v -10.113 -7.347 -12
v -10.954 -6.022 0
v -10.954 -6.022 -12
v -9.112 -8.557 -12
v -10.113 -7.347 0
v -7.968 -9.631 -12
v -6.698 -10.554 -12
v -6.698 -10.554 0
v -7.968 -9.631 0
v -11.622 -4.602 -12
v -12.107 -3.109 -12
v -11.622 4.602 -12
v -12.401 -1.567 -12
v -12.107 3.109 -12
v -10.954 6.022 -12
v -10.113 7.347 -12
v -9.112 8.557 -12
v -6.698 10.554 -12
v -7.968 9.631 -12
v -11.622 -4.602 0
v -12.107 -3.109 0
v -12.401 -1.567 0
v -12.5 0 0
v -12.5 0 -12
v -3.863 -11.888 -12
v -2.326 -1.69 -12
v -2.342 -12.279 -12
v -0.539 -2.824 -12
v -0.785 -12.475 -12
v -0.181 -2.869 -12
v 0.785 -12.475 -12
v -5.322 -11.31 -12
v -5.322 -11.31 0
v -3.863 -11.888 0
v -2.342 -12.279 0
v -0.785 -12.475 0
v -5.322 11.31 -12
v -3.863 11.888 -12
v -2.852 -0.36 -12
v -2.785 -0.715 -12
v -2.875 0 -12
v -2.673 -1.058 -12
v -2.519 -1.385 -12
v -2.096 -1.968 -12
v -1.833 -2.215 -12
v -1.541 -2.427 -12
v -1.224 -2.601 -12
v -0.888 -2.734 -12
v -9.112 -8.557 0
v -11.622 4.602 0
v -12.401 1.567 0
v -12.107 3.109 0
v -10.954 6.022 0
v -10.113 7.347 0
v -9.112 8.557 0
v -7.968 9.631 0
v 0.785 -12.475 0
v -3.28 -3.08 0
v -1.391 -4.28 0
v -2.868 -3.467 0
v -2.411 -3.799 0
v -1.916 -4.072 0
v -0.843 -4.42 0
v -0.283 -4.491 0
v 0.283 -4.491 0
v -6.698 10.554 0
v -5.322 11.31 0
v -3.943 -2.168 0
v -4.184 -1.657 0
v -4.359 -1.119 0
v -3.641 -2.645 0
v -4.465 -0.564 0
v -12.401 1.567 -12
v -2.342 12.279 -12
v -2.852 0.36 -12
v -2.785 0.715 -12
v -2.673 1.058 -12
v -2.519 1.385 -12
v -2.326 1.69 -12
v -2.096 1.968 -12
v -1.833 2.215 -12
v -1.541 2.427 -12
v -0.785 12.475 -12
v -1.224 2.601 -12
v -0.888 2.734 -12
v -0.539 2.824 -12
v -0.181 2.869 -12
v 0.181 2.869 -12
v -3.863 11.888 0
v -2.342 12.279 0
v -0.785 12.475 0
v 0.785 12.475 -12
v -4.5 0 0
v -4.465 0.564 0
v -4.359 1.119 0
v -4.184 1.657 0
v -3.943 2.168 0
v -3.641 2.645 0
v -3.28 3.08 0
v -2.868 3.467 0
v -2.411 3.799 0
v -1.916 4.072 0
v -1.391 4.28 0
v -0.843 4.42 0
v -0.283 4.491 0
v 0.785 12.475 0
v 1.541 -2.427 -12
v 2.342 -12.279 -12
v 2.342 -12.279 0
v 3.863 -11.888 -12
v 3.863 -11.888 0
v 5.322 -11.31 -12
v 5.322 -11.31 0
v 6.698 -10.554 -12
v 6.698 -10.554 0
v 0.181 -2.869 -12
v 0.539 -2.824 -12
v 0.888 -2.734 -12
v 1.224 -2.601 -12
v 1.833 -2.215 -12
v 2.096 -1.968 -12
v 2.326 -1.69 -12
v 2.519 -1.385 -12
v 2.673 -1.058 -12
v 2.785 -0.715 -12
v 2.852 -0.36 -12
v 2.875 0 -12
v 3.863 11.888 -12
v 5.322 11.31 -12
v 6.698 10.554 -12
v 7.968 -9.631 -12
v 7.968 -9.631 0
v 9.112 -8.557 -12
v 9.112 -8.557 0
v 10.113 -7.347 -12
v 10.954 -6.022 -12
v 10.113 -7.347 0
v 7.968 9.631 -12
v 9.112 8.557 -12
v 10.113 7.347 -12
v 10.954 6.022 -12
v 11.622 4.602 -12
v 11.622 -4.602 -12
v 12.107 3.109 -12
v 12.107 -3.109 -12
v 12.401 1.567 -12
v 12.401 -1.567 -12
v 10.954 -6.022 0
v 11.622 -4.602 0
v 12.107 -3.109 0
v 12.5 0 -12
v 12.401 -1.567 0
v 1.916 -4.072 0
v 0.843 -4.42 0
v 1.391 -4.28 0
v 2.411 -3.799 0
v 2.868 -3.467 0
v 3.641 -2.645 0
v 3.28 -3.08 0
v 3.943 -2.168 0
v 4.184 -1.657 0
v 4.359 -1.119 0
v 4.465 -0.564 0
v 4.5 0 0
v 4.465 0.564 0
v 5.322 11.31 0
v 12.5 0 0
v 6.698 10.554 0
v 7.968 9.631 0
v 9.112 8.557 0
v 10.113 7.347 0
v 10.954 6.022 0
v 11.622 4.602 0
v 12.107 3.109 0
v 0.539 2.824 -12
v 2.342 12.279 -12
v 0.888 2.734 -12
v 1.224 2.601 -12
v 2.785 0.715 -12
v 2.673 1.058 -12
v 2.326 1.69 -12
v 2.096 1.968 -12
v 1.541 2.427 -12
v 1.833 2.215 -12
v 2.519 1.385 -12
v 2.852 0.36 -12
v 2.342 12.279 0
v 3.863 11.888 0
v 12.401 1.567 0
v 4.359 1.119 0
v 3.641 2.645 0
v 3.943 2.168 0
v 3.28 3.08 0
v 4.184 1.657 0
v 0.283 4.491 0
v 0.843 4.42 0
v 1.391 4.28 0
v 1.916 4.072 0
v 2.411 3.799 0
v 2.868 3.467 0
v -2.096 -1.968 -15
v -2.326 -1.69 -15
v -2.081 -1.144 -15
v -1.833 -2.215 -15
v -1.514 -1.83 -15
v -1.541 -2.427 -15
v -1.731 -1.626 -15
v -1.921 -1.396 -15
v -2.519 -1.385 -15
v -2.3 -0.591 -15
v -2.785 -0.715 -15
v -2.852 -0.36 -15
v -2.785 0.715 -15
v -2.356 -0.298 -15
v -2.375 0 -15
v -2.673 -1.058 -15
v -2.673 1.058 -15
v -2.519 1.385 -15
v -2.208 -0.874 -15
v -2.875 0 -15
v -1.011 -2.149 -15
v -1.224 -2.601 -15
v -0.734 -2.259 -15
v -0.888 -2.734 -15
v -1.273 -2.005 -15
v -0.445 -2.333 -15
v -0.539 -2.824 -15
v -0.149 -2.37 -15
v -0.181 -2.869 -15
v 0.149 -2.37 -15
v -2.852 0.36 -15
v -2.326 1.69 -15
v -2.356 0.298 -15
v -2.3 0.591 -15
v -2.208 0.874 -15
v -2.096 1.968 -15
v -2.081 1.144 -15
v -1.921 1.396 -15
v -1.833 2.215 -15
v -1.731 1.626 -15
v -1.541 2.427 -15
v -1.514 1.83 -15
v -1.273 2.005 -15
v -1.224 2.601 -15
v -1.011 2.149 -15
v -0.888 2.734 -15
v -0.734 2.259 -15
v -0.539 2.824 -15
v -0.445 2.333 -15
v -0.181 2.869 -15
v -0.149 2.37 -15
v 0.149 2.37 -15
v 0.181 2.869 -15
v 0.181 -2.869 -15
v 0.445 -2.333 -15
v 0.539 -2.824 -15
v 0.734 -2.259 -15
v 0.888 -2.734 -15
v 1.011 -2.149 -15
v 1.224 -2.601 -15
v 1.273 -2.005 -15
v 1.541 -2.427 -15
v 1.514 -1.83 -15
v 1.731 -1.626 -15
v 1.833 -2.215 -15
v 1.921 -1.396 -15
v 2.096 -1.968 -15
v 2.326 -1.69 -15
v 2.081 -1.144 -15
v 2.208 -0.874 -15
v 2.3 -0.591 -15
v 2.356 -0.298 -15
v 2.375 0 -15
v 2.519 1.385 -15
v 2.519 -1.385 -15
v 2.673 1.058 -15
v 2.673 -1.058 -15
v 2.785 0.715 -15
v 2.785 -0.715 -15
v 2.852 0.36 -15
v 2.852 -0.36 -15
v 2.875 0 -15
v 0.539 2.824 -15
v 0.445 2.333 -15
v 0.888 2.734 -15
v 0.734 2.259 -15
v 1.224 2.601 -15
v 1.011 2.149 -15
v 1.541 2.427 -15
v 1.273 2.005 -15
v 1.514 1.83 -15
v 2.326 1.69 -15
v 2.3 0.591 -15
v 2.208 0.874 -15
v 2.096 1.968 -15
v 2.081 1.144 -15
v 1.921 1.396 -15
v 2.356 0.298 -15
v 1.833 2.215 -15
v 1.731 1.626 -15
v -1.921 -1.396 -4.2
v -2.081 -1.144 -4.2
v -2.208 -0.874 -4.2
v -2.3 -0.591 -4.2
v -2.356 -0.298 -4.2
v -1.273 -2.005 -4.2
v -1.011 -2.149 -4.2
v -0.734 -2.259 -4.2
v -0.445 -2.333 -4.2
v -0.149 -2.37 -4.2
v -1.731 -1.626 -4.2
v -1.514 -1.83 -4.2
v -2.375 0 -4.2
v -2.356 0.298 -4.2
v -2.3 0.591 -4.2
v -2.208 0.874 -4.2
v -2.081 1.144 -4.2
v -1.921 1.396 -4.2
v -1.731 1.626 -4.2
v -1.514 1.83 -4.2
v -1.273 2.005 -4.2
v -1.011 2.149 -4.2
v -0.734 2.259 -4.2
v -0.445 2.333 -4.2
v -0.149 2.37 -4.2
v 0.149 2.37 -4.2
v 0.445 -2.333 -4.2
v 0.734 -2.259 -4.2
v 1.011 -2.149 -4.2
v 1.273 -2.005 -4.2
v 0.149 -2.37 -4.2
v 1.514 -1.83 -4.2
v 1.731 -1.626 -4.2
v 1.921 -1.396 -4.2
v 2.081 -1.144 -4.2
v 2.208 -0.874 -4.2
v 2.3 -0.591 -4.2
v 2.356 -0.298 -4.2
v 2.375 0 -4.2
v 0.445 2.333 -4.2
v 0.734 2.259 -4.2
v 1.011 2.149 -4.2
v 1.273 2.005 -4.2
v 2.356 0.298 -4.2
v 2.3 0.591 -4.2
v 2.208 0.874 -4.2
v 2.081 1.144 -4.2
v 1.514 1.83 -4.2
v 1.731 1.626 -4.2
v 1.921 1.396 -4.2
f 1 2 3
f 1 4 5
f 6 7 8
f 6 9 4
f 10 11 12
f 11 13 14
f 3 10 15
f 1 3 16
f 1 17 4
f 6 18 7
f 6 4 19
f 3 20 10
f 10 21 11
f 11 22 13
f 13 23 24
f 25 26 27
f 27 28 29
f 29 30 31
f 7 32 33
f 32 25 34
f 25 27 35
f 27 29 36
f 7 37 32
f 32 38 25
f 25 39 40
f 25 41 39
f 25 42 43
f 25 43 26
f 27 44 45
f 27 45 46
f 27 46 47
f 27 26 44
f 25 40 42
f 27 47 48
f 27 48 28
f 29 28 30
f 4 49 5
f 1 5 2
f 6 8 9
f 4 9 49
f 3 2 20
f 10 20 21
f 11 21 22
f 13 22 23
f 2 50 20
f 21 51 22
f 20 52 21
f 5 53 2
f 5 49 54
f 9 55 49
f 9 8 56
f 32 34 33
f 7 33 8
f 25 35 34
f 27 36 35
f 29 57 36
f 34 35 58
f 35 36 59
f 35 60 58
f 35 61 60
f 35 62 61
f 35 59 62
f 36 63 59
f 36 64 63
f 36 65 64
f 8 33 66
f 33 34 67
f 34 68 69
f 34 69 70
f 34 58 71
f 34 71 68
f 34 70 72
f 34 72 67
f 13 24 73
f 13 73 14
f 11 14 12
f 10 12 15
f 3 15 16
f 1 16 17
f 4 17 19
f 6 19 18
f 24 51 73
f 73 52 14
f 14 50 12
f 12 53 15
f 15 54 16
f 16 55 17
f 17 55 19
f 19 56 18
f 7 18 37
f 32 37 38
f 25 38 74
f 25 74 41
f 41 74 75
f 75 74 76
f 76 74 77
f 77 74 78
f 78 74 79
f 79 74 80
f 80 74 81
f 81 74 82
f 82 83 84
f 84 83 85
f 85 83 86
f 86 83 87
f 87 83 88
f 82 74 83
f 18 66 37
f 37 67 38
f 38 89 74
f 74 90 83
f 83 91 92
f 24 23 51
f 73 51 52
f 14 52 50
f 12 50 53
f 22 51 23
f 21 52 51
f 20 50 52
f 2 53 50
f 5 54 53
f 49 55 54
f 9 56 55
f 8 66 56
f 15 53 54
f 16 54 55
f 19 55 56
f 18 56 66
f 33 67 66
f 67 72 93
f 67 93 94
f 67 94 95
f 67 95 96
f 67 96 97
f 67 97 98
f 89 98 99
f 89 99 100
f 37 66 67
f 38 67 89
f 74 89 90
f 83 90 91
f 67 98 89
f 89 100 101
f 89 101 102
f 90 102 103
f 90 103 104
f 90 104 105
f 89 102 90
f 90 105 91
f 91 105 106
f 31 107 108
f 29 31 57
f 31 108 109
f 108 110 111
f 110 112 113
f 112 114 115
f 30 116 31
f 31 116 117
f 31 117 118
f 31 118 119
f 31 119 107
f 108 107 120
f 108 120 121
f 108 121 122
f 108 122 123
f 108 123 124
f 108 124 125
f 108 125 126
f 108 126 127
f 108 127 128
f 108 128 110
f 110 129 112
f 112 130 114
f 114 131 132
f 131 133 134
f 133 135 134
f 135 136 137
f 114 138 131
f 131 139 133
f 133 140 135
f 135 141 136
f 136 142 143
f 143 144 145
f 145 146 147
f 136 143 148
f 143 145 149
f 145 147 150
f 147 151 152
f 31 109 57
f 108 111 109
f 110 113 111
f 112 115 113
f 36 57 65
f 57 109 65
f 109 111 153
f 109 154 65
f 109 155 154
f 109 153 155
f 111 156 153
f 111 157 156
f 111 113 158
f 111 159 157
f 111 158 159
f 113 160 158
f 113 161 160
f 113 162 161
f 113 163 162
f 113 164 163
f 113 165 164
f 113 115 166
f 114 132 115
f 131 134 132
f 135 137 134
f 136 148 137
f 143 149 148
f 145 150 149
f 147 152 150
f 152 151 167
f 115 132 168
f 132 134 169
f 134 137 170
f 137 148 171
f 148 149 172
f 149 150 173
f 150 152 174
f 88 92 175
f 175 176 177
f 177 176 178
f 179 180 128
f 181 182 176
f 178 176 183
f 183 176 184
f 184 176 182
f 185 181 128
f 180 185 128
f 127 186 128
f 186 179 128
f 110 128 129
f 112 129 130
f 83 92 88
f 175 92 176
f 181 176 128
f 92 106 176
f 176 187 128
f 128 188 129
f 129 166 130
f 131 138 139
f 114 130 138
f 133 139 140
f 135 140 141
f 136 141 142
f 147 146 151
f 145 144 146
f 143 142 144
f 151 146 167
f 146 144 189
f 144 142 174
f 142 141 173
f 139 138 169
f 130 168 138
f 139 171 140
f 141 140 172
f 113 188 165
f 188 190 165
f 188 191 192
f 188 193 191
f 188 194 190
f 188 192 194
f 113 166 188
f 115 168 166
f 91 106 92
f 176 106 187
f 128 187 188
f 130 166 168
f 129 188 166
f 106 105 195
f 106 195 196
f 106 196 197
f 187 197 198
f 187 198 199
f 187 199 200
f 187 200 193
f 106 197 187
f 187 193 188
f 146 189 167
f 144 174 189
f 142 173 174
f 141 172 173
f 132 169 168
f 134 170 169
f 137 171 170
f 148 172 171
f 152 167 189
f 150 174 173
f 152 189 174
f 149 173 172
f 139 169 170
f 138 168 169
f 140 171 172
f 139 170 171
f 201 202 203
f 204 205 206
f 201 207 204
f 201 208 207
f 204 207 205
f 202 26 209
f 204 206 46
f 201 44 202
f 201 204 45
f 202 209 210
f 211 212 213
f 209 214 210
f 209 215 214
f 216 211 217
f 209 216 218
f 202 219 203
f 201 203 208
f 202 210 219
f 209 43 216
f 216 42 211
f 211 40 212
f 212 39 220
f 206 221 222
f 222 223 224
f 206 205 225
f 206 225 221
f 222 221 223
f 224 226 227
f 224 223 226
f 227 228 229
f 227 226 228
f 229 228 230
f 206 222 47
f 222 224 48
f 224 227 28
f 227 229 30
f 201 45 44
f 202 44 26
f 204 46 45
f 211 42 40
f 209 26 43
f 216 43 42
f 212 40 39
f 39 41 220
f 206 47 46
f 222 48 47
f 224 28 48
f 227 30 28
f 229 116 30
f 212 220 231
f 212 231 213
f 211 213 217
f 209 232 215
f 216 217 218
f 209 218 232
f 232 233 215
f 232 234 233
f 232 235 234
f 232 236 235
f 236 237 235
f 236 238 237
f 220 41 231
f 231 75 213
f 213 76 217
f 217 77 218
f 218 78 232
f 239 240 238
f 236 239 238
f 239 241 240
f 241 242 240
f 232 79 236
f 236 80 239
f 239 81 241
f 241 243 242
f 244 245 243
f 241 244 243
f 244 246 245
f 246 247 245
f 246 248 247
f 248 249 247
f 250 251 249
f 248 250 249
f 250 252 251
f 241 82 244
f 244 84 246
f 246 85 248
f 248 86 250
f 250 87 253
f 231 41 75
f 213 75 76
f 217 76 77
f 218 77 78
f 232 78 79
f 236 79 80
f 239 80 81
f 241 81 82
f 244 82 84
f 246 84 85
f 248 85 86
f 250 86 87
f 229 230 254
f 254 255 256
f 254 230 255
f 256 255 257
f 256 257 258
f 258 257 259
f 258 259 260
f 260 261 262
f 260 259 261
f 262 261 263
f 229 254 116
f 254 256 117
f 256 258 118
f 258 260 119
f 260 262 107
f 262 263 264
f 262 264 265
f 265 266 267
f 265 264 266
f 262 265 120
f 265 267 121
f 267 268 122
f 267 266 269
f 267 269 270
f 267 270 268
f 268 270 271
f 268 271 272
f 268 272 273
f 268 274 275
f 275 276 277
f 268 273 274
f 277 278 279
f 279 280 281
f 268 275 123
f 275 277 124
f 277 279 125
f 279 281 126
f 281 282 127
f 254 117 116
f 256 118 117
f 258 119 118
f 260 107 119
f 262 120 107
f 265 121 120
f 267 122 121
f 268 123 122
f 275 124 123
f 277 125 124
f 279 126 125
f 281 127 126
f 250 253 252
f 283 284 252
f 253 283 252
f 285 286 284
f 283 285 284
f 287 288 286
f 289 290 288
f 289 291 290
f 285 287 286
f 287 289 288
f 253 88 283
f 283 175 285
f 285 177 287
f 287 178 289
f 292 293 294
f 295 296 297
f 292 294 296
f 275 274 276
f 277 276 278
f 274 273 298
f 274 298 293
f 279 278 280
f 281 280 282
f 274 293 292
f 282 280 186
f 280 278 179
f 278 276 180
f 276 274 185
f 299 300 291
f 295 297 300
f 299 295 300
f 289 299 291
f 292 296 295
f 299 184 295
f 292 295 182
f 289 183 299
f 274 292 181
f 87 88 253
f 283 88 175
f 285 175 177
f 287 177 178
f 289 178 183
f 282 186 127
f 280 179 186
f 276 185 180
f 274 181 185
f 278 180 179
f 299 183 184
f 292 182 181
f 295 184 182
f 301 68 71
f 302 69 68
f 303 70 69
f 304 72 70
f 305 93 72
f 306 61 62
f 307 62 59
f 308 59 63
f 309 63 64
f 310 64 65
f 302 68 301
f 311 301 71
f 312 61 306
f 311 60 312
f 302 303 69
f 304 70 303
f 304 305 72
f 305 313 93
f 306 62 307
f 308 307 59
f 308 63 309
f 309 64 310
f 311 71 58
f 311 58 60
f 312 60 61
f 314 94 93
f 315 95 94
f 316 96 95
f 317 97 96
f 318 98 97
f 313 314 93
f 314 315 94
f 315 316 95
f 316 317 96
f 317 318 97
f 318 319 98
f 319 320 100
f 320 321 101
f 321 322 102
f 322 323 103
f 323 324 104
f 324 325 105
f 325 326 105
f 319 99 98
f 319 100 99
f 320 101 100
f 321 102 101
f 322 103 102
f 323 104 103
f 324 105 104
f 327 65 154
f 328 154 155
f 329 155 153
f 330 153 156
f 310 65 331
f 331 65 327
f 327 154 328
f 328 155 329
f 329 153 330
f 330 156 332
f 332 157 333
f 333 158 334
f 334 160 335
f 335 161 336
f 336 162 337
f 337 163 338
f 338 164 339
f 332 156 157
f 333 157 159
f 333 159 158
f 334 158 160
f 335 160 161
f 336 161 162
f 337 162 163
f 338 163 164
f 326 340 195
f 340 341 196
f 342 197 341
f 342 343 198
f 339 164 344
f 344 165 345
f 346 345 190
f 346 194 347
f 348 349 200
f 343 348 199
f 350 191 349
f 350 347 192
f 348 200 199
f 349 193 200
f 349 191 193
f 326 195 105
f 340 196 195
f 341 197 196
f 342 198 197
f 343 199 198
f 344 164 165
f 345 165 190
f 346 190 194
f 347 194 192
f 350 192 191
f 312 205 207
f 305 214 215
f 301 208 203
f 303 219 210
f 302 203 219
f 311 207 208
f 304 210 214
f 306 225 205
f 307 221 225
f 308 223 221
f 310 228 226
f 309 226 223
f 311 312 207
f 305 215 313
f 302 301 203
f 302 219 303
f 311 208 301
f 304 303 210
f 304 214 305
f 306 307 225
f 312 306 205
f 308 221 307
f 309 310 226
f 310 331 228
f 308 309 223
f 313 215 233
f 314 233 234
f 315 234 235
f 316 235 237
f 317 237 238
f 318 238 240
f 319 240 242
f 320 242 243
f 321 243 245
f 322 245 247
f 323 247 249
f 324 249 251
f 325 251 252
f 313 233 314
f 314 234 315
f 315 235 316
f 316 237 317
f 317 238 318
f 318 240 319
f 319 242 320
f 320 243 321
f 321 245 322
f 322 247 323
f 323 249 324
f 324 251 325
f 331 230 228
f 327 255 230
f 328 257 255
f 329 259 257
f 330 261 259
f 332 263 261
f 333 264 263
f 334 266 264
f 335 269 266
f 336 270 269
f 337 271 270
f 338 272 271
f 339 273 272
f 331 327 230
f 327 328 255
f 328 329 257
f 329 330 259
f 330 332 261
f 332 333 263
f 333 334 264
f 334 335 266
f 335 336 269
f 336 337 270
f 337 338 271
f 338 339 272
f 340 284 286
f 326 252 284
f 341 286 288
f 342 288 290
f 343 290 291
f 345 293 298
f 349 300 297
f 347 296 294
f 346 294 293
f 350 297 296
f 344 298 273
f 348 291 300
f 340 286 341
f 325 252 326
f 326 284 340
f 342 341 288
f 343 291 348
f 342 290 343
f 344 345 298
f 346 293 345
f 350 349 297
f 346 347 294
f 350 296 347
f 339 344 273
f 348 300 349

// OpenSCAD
$fn = 50;

difference() {
	union() {
		translate(v = [0, 0, -12.0]) {
			cylinder(h = 12, r = 12.5);
		}
		#translate(v = [0, 0, -15.0]) {
			cylinder(h = 15, r = 2.875);
		}
	}
	union() {
		translate(v = [0, 0, 0]) {
			rotate(a = [0, 0, 0]) {
				difference() {
					union() {
						translate(v = [0, 0, -15.0]) {
							cylinder(h = 15, r = 2.25);
						}
						translate(v = [0, 0, -4.2]) {
							cylinder(h = 4.2, r1 = 2.375, r2 = 4.5);
						}
						translate(v = [0, 0, -15.0]) {
							cylinder(h = 15, r = 2.375);
						}
						translate(v = [0, 0, -15.0]) {
							cylinder(h = 15, r = 2.25);
						}
					}
					union();
				}
			}
		}
	}
}
